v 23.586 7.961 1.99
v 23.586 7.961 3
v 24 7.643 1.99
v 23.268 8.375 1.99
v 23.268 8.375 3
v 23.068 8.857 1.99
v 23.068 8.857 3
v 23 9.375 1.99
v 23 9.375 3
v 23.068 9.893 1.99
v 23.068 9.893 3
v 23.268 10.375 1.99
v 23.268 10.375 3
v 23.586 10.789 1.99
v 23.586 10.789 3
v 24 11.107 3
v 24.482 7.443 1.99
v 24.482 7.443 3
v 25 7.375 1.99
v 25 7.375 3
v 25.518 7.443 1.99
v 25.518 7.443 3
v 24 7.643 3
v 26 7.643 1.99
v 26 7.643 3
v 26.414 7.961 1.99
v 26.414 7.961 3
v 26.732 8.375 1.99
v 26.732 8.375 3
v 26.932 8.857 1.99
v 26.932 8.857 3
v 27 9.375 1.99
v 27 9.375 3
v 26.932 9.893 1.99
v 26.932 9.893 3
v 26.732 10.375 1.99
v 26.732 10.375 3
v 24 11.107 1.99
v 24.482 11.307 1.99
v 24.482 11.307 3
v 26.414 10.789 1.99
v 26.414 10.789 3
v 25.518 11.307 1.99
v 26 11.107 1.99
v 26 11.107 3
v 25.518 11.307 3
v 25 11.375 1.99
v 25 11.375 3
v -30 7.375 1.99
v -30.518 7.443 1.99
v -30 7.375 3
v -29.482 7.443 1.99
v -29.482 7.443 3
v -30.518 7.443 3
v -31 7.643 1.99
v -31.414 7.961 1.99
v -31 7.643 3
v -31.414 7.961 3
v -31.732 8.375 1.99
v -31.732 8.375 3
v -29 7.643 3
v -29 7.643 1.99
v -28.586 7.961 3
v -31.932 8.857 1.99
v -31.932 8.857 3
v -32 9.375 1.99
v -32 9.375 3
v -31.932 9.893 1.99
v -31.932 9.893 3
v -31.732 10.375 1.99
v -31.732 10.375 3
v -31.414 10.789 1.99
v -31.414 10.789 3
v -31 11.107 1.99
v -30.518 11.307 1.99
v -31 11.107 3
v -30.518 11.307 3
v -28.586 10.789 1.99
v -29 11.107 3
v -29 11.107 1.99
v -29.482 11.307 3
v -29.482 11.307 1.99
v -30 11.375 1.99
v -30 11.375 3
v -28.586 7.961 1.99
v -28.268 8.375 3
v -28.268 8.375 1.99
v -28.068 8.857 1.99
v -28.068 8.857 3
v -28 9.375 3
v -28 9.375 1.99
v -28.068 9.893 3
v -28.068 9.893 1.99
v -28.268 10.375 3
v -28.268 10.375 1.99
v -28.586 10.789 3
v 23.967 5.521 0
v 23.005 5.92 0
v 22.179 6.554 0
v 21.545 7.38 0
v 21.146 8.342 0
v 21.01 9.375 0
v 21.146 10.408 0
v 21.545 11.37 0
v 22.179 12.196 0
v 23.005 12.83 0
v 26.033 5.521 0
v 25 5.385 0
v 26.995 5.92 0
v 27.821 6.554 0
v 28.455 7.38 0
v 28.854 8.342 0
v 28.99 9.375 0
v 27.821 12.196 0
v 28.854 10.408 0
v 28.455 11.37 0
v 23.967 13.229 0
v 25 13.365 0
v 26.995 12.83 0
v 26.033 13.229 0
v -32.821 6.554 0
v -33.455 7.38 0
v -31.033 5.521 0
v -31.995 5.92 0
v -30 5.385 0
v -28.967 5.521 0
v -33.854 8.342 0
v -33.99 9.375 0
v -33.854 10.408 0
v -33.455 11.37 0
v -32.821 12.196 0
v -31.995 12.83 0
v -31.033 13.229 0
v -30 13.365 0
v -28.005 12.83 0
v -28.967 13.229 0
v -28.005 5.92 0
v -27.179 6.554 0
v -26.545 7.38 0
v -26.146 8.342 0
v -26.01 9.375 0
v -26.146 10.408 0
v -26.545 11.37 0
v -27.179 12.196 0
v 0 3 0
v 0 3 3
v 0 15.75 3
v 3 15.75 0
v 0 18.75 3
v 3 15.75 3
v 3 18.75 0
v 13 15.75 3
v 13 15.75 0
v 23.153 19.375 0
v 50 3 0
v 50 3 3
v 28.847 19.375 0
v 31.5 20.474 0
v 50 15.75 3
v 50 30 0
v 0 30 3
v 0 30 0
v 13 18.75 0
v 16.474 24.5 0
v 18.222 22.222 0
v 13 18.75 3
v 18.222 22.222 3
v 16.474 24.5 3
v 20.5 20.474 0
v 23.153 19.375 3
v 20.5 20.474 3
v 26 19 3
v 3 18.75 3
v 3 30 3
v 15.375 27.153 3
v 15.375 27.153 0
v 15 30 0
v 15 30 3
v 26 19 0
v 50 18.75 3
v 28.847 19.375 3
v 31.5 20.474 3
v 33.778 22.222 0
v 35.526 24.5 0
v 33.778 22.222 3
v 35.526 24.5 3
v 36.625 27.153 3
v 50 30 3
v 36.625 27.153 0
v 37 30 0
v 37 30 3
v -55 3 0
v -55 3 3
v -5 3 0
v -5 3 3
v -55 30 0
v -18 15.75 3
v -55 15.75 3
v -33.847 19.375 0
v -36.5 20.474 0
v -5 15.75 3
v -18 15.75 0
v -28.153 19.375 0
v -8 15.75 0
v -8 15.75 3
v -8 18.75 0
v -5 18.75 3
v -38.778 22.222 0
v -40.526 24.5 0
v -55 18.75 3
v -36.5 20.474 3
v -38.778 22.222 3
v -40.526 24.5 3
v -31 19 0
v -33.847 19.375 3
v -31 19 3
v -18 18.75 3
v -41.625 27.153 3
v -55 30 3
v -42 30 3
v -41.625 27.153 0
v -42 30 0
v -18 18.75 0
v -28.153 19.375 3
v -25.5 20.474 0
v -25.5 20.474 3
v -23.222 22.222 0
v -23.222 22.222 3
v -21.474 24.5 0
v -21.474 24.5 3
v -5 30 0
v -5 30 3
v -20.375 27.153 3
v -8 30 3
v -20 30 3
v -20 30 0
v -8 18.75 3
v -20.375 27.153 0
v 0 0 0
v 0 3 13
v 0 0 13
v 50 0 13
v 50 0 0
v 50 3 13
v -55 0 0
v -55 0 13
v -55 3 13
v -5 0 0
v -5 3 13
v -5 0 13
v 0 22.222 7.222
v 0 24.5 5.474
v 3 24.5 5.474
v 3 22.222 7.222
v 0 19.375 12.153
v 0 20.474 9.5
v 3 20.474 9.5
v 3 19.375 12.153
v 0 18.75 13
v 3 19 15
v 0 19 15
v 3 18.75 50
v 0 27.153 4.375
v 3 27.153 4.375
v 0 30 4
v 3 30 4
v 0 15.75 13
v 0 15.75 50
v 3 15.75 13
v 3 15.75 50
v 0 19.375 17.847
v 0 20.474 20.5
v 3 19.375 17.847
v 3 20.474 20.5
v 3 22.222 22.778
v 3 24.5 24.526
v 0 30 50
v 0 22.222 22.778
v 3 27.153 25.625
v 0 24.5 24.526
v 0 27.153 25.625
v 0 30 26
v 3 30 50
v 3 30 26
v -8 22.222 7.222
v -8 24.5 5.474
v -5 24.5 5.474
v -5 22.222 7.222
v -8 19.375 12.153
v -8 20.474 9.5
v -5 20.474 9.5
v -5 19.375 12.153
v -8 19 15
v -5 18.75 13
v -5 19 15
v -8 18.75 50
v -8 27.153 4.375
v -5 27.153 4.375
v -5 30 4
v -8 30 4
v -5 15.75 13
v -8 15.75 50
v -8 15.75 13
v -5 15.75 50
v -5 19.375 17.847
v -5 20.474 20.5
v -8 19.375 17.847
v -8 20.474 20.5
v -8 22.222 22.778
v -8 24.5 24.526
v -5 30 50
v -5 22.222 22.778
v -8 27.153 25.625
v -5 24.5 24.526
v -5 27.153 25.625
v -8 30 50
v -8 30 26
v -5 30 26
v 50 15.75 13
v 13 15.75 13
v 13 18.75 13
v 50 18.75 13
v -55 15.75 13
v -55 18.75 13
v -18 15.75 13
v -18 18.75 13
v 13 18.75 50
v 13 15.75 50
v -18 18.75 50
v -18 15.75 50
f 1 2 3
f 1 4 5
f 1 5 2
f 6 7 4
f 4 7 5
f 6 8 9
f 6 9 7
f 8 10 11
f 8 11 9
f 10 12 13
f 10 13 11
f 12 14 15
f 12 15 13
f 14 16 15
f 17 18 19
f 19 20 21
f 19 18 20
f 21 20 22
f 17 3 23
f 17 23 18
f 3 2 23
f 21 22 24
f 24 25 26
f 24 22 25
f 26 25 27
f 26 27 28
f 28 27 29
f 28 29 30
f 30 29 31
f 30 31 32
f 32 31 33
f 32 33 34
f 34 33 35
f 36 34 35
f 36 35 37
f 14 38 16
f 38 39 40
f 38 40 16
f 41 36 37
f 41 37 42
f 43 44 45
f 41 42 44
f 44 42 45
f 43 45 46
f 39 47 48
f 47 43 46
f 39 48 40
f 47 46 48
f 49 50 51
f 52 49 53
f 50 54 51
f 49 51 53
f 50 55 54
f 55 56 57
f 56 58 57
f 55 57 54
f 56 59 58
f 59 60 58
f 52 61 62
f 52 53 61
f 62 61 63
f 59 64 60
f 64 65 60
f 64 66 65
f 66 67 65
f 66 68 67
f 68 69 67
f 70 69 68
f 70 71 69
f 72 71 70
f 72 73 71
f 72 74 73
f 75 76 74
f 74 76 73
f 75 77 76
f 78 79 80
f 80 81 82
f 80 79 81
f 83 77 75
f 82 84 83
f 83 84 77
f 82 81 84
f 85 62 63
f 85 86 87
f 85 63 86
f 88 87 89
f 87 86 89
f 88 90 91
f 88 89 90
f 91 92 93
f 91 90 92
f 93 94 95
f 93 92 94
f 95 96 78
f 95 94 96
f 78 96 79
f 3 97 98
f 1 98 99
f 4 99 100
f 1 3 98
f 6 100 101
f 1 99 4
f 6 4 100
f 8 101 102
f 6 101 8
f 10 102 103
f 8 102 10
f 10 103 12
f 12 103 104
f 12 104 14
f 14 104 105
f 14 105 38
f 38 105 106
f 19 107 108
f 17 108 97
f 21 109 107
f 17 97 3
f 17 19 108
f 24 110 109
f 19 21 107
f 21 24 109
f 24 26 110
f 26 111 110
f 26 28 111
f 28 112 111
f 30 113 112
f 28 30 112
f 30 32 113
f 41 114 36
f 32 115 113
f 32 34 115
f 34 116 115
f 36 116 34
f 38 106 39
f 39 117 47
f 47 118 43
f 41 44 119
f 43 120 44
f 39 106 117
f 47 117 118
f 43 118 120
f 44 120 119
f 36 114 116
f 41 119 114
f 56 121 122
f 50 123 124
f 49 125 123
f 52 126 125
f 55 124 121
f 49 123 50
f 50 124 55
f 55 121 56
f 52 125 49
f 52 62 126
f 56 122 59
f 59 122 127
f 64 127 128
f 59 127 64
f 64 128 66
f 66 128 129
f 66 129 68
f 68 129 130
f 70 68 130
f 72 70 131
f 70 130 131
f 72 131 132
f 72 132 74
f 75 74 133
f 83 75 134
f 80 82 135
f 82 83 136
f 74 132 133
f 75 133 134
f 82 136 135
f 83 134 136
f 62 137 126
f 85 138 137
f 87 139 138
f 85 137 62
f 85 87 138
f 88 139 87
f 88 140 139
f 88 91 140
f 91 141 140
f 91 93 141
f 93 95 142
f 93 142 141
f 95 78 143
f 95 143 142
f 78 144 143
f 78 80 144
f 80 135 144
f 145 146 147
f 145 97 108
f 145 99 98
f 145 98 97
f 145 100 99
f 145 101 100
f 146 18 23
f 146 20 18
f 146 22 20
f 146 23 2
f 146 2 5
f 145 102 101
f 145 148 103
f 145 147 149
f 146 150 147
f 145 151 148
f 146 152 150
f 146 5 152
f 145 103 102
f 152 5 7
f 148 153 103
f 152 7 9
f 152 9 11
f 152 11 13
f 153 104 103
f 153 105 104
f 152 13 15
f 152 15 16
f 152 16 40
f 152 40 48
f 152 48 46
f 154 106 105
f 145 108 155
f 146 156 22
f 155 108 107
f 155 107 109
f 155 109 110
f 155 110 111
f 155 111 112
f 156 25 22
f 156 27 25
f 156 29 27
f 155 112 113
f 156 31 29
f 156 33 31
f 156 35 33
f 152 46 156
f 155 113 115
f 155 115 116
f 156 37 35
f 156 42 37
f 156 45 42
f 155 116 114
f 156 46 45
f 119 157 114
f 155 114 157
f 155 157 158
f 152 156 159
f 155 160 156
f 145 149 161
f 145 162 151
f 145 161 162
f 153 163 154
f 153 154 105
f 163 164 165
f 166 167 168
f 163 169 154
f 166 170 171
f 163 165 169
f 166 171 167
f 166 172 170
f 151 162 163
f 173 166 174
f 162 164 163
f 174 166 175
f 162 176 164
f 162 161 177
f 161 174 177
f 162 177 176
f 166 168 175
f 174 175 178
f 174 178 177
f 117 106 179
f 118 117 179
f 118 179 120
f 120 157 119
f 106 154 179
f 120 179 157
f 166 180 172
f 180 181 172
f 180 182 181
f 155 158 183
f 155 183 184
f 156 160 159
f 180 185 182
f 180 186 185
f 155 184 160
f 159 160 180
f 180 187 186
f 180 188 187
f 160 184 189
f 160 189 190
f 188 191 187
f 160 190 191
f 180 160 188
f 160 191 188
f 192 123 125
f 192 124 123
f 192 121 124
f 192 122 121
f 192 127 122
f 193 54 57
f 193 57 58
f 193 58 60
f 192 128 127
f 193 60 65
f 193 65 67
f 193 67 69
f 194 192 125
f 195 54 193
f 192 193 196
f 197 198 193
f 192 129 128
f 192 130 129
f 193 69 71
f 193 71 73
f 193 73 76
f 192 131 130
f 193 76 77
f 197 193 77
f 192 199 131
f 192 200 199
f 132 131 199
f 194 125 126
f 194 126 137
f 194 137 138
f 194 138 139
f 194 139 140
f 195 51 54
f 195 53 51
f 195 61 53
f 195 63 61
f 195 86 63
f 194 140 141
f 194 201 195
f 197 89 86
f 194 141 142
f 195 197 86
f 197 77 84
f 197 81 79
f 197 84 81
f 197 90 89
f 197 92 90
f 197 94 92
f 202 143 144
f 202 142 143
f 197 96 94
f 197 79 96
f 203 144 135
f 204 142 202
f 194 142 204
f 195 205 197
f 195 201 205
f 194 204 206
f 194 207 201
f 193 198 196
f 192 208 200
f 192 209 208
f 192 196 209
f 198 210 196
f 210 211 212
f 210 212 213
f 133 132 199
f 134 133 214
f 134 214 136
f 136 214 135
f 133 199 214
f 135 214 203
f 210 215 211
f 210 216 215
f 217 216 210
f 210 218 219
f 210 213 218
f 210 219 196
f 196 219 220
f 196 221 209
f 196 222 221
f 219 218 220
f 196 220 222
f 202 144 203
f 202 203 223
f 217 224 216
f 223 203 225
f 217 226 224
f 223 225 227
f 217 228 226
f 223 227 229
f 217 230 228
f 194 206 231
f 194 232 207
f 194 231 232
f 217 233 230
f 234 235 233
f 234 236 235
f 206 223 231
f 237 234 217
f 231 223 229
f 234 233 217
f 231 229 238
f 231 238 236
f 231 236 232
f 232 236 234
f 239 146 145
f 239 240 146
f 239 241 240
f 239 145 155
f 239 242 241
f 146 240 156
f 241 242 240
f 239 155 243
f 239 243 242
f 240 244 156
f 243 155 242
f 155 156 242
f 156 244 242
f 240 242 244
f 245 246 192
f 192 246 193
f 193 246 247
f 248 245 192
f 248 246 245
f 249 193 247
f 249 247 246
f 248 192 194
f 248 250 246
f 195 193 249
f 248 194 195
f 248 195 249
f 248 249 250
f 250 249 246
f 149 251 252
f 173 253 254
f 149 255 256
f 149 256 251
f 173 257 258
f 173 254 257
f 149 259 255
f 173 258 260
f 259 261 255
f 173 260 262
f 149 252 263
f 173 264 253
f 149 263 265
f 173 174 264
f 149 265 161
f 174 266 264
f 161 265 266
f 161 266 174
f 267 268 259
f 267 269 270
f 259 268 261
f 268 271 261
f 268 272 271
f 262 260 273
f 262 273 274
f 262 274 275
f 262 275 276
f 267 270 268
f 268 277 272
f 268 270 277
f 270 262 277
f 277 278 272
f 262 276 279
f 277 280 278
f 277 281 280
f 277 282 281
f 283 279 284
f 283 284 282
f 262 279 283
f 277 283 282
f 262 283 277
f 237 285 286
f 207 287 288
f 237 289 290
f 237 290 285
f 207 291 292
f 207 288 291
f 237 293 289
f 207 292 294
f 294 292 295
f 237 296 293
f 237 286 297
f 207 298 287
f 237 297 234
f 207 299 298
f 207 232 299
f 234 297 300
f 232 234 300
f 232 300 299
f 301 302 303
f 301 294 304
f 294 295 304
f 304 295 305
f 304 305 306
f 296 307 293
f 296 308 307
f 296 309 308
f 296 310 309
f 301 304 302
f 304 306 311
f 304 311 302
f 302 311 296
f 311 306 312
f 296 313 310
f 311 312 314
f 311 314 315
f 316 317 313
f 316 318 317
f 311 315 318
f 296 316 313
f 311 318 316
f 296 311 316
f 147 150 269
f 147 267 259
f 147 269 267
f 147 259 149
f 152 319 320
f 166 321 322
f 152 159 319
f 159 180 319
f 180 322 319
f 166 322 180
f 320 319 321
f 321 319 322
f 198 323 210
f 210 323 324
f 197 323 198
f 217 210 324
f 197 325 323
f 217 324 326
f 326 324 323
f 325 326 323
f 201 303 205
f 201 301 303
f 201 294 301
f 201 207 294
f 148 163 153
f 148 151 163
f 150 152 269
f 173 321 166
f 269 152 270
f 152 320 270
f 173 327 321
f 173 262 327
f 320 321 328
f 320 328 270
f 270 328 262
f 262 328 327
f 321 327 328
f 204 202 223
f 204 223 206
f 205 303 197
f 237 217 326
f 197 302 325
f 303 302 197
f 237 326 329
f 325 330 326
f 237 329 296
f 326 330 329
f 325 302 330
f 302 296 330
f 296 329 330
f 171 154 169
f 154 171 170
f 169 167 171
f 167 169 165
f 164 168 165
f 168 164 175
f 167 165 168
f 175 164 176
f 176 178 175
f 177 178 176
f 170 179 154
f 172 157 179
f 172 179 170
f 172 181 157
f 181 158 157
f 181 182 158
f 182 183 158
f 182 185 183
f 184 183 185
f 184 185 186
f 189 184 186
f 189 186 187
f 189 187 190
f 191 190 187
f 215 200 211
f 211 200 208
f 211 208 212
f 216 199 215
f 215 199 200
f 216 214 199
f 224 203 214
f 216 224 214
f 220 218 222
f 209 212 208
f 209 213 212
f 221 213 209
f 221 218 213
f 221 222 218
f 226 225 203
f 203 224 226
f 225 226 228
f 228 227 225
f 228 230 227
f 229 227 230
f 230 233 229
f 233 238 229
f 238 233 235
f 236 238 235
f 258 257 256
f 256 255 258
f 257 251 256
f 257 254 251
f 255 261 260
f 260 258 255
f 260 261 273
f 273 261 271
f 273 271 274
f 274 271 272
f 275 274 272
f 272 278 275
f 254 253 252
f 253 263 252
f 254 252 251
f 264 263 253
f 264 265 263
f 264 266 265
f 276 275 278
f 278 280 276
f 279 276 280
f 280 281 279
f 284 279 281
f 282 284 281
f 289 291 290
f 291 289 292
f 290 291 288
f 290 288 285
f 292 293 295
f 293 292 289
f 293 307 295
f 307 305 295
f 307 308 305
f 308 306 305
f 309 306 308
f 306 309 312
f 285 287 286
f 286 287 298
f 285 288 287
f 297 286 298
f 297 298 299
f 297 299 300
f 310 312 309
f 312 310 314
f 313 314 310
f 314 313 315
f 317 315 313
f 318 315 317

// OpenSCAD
$fn=24;
t = 3;
l = 50;
h = 30;
s = 12.75; // shelf thickness (want this snug)
lip = 10; // how far under shelf lip should extend

// Draw the basic corner part
module part1() {
    cube([l, h, t]);
    cube([l, t, lip+t]);
    translate([0, t+s, 0])
        cube([t, h-t-s, l]);

    // Under shelf parts
    translate([0, t+s, t]) {
        cube([l, t, lip]);
    }
    translate([t, t+s, 0]) {
        cube([lip, t, l]);
    }
}


module part2() {
    difference() {
        // Add a nail/screw hole
        part1();
        translate([l/2, t + s/2, -0.01]) {
            cylinder(h=t+1, r=2);
            cylinder(h=2, r1=4, r2=2);
        }
            
        // Cut out holes for rack screws
        a=20+t;
        ar=11;
        translate([t+a, h, -0.01])
            cylinder(h=t+1, r=ar);
        translate([-0.01, h, t+12])
            rotate([0,90,0])
                cylinder(h=t+1, r=ar);
    }
}

part2();
translate([-5, 0, 0]) mirror([1, 0, 0])
    part2();
